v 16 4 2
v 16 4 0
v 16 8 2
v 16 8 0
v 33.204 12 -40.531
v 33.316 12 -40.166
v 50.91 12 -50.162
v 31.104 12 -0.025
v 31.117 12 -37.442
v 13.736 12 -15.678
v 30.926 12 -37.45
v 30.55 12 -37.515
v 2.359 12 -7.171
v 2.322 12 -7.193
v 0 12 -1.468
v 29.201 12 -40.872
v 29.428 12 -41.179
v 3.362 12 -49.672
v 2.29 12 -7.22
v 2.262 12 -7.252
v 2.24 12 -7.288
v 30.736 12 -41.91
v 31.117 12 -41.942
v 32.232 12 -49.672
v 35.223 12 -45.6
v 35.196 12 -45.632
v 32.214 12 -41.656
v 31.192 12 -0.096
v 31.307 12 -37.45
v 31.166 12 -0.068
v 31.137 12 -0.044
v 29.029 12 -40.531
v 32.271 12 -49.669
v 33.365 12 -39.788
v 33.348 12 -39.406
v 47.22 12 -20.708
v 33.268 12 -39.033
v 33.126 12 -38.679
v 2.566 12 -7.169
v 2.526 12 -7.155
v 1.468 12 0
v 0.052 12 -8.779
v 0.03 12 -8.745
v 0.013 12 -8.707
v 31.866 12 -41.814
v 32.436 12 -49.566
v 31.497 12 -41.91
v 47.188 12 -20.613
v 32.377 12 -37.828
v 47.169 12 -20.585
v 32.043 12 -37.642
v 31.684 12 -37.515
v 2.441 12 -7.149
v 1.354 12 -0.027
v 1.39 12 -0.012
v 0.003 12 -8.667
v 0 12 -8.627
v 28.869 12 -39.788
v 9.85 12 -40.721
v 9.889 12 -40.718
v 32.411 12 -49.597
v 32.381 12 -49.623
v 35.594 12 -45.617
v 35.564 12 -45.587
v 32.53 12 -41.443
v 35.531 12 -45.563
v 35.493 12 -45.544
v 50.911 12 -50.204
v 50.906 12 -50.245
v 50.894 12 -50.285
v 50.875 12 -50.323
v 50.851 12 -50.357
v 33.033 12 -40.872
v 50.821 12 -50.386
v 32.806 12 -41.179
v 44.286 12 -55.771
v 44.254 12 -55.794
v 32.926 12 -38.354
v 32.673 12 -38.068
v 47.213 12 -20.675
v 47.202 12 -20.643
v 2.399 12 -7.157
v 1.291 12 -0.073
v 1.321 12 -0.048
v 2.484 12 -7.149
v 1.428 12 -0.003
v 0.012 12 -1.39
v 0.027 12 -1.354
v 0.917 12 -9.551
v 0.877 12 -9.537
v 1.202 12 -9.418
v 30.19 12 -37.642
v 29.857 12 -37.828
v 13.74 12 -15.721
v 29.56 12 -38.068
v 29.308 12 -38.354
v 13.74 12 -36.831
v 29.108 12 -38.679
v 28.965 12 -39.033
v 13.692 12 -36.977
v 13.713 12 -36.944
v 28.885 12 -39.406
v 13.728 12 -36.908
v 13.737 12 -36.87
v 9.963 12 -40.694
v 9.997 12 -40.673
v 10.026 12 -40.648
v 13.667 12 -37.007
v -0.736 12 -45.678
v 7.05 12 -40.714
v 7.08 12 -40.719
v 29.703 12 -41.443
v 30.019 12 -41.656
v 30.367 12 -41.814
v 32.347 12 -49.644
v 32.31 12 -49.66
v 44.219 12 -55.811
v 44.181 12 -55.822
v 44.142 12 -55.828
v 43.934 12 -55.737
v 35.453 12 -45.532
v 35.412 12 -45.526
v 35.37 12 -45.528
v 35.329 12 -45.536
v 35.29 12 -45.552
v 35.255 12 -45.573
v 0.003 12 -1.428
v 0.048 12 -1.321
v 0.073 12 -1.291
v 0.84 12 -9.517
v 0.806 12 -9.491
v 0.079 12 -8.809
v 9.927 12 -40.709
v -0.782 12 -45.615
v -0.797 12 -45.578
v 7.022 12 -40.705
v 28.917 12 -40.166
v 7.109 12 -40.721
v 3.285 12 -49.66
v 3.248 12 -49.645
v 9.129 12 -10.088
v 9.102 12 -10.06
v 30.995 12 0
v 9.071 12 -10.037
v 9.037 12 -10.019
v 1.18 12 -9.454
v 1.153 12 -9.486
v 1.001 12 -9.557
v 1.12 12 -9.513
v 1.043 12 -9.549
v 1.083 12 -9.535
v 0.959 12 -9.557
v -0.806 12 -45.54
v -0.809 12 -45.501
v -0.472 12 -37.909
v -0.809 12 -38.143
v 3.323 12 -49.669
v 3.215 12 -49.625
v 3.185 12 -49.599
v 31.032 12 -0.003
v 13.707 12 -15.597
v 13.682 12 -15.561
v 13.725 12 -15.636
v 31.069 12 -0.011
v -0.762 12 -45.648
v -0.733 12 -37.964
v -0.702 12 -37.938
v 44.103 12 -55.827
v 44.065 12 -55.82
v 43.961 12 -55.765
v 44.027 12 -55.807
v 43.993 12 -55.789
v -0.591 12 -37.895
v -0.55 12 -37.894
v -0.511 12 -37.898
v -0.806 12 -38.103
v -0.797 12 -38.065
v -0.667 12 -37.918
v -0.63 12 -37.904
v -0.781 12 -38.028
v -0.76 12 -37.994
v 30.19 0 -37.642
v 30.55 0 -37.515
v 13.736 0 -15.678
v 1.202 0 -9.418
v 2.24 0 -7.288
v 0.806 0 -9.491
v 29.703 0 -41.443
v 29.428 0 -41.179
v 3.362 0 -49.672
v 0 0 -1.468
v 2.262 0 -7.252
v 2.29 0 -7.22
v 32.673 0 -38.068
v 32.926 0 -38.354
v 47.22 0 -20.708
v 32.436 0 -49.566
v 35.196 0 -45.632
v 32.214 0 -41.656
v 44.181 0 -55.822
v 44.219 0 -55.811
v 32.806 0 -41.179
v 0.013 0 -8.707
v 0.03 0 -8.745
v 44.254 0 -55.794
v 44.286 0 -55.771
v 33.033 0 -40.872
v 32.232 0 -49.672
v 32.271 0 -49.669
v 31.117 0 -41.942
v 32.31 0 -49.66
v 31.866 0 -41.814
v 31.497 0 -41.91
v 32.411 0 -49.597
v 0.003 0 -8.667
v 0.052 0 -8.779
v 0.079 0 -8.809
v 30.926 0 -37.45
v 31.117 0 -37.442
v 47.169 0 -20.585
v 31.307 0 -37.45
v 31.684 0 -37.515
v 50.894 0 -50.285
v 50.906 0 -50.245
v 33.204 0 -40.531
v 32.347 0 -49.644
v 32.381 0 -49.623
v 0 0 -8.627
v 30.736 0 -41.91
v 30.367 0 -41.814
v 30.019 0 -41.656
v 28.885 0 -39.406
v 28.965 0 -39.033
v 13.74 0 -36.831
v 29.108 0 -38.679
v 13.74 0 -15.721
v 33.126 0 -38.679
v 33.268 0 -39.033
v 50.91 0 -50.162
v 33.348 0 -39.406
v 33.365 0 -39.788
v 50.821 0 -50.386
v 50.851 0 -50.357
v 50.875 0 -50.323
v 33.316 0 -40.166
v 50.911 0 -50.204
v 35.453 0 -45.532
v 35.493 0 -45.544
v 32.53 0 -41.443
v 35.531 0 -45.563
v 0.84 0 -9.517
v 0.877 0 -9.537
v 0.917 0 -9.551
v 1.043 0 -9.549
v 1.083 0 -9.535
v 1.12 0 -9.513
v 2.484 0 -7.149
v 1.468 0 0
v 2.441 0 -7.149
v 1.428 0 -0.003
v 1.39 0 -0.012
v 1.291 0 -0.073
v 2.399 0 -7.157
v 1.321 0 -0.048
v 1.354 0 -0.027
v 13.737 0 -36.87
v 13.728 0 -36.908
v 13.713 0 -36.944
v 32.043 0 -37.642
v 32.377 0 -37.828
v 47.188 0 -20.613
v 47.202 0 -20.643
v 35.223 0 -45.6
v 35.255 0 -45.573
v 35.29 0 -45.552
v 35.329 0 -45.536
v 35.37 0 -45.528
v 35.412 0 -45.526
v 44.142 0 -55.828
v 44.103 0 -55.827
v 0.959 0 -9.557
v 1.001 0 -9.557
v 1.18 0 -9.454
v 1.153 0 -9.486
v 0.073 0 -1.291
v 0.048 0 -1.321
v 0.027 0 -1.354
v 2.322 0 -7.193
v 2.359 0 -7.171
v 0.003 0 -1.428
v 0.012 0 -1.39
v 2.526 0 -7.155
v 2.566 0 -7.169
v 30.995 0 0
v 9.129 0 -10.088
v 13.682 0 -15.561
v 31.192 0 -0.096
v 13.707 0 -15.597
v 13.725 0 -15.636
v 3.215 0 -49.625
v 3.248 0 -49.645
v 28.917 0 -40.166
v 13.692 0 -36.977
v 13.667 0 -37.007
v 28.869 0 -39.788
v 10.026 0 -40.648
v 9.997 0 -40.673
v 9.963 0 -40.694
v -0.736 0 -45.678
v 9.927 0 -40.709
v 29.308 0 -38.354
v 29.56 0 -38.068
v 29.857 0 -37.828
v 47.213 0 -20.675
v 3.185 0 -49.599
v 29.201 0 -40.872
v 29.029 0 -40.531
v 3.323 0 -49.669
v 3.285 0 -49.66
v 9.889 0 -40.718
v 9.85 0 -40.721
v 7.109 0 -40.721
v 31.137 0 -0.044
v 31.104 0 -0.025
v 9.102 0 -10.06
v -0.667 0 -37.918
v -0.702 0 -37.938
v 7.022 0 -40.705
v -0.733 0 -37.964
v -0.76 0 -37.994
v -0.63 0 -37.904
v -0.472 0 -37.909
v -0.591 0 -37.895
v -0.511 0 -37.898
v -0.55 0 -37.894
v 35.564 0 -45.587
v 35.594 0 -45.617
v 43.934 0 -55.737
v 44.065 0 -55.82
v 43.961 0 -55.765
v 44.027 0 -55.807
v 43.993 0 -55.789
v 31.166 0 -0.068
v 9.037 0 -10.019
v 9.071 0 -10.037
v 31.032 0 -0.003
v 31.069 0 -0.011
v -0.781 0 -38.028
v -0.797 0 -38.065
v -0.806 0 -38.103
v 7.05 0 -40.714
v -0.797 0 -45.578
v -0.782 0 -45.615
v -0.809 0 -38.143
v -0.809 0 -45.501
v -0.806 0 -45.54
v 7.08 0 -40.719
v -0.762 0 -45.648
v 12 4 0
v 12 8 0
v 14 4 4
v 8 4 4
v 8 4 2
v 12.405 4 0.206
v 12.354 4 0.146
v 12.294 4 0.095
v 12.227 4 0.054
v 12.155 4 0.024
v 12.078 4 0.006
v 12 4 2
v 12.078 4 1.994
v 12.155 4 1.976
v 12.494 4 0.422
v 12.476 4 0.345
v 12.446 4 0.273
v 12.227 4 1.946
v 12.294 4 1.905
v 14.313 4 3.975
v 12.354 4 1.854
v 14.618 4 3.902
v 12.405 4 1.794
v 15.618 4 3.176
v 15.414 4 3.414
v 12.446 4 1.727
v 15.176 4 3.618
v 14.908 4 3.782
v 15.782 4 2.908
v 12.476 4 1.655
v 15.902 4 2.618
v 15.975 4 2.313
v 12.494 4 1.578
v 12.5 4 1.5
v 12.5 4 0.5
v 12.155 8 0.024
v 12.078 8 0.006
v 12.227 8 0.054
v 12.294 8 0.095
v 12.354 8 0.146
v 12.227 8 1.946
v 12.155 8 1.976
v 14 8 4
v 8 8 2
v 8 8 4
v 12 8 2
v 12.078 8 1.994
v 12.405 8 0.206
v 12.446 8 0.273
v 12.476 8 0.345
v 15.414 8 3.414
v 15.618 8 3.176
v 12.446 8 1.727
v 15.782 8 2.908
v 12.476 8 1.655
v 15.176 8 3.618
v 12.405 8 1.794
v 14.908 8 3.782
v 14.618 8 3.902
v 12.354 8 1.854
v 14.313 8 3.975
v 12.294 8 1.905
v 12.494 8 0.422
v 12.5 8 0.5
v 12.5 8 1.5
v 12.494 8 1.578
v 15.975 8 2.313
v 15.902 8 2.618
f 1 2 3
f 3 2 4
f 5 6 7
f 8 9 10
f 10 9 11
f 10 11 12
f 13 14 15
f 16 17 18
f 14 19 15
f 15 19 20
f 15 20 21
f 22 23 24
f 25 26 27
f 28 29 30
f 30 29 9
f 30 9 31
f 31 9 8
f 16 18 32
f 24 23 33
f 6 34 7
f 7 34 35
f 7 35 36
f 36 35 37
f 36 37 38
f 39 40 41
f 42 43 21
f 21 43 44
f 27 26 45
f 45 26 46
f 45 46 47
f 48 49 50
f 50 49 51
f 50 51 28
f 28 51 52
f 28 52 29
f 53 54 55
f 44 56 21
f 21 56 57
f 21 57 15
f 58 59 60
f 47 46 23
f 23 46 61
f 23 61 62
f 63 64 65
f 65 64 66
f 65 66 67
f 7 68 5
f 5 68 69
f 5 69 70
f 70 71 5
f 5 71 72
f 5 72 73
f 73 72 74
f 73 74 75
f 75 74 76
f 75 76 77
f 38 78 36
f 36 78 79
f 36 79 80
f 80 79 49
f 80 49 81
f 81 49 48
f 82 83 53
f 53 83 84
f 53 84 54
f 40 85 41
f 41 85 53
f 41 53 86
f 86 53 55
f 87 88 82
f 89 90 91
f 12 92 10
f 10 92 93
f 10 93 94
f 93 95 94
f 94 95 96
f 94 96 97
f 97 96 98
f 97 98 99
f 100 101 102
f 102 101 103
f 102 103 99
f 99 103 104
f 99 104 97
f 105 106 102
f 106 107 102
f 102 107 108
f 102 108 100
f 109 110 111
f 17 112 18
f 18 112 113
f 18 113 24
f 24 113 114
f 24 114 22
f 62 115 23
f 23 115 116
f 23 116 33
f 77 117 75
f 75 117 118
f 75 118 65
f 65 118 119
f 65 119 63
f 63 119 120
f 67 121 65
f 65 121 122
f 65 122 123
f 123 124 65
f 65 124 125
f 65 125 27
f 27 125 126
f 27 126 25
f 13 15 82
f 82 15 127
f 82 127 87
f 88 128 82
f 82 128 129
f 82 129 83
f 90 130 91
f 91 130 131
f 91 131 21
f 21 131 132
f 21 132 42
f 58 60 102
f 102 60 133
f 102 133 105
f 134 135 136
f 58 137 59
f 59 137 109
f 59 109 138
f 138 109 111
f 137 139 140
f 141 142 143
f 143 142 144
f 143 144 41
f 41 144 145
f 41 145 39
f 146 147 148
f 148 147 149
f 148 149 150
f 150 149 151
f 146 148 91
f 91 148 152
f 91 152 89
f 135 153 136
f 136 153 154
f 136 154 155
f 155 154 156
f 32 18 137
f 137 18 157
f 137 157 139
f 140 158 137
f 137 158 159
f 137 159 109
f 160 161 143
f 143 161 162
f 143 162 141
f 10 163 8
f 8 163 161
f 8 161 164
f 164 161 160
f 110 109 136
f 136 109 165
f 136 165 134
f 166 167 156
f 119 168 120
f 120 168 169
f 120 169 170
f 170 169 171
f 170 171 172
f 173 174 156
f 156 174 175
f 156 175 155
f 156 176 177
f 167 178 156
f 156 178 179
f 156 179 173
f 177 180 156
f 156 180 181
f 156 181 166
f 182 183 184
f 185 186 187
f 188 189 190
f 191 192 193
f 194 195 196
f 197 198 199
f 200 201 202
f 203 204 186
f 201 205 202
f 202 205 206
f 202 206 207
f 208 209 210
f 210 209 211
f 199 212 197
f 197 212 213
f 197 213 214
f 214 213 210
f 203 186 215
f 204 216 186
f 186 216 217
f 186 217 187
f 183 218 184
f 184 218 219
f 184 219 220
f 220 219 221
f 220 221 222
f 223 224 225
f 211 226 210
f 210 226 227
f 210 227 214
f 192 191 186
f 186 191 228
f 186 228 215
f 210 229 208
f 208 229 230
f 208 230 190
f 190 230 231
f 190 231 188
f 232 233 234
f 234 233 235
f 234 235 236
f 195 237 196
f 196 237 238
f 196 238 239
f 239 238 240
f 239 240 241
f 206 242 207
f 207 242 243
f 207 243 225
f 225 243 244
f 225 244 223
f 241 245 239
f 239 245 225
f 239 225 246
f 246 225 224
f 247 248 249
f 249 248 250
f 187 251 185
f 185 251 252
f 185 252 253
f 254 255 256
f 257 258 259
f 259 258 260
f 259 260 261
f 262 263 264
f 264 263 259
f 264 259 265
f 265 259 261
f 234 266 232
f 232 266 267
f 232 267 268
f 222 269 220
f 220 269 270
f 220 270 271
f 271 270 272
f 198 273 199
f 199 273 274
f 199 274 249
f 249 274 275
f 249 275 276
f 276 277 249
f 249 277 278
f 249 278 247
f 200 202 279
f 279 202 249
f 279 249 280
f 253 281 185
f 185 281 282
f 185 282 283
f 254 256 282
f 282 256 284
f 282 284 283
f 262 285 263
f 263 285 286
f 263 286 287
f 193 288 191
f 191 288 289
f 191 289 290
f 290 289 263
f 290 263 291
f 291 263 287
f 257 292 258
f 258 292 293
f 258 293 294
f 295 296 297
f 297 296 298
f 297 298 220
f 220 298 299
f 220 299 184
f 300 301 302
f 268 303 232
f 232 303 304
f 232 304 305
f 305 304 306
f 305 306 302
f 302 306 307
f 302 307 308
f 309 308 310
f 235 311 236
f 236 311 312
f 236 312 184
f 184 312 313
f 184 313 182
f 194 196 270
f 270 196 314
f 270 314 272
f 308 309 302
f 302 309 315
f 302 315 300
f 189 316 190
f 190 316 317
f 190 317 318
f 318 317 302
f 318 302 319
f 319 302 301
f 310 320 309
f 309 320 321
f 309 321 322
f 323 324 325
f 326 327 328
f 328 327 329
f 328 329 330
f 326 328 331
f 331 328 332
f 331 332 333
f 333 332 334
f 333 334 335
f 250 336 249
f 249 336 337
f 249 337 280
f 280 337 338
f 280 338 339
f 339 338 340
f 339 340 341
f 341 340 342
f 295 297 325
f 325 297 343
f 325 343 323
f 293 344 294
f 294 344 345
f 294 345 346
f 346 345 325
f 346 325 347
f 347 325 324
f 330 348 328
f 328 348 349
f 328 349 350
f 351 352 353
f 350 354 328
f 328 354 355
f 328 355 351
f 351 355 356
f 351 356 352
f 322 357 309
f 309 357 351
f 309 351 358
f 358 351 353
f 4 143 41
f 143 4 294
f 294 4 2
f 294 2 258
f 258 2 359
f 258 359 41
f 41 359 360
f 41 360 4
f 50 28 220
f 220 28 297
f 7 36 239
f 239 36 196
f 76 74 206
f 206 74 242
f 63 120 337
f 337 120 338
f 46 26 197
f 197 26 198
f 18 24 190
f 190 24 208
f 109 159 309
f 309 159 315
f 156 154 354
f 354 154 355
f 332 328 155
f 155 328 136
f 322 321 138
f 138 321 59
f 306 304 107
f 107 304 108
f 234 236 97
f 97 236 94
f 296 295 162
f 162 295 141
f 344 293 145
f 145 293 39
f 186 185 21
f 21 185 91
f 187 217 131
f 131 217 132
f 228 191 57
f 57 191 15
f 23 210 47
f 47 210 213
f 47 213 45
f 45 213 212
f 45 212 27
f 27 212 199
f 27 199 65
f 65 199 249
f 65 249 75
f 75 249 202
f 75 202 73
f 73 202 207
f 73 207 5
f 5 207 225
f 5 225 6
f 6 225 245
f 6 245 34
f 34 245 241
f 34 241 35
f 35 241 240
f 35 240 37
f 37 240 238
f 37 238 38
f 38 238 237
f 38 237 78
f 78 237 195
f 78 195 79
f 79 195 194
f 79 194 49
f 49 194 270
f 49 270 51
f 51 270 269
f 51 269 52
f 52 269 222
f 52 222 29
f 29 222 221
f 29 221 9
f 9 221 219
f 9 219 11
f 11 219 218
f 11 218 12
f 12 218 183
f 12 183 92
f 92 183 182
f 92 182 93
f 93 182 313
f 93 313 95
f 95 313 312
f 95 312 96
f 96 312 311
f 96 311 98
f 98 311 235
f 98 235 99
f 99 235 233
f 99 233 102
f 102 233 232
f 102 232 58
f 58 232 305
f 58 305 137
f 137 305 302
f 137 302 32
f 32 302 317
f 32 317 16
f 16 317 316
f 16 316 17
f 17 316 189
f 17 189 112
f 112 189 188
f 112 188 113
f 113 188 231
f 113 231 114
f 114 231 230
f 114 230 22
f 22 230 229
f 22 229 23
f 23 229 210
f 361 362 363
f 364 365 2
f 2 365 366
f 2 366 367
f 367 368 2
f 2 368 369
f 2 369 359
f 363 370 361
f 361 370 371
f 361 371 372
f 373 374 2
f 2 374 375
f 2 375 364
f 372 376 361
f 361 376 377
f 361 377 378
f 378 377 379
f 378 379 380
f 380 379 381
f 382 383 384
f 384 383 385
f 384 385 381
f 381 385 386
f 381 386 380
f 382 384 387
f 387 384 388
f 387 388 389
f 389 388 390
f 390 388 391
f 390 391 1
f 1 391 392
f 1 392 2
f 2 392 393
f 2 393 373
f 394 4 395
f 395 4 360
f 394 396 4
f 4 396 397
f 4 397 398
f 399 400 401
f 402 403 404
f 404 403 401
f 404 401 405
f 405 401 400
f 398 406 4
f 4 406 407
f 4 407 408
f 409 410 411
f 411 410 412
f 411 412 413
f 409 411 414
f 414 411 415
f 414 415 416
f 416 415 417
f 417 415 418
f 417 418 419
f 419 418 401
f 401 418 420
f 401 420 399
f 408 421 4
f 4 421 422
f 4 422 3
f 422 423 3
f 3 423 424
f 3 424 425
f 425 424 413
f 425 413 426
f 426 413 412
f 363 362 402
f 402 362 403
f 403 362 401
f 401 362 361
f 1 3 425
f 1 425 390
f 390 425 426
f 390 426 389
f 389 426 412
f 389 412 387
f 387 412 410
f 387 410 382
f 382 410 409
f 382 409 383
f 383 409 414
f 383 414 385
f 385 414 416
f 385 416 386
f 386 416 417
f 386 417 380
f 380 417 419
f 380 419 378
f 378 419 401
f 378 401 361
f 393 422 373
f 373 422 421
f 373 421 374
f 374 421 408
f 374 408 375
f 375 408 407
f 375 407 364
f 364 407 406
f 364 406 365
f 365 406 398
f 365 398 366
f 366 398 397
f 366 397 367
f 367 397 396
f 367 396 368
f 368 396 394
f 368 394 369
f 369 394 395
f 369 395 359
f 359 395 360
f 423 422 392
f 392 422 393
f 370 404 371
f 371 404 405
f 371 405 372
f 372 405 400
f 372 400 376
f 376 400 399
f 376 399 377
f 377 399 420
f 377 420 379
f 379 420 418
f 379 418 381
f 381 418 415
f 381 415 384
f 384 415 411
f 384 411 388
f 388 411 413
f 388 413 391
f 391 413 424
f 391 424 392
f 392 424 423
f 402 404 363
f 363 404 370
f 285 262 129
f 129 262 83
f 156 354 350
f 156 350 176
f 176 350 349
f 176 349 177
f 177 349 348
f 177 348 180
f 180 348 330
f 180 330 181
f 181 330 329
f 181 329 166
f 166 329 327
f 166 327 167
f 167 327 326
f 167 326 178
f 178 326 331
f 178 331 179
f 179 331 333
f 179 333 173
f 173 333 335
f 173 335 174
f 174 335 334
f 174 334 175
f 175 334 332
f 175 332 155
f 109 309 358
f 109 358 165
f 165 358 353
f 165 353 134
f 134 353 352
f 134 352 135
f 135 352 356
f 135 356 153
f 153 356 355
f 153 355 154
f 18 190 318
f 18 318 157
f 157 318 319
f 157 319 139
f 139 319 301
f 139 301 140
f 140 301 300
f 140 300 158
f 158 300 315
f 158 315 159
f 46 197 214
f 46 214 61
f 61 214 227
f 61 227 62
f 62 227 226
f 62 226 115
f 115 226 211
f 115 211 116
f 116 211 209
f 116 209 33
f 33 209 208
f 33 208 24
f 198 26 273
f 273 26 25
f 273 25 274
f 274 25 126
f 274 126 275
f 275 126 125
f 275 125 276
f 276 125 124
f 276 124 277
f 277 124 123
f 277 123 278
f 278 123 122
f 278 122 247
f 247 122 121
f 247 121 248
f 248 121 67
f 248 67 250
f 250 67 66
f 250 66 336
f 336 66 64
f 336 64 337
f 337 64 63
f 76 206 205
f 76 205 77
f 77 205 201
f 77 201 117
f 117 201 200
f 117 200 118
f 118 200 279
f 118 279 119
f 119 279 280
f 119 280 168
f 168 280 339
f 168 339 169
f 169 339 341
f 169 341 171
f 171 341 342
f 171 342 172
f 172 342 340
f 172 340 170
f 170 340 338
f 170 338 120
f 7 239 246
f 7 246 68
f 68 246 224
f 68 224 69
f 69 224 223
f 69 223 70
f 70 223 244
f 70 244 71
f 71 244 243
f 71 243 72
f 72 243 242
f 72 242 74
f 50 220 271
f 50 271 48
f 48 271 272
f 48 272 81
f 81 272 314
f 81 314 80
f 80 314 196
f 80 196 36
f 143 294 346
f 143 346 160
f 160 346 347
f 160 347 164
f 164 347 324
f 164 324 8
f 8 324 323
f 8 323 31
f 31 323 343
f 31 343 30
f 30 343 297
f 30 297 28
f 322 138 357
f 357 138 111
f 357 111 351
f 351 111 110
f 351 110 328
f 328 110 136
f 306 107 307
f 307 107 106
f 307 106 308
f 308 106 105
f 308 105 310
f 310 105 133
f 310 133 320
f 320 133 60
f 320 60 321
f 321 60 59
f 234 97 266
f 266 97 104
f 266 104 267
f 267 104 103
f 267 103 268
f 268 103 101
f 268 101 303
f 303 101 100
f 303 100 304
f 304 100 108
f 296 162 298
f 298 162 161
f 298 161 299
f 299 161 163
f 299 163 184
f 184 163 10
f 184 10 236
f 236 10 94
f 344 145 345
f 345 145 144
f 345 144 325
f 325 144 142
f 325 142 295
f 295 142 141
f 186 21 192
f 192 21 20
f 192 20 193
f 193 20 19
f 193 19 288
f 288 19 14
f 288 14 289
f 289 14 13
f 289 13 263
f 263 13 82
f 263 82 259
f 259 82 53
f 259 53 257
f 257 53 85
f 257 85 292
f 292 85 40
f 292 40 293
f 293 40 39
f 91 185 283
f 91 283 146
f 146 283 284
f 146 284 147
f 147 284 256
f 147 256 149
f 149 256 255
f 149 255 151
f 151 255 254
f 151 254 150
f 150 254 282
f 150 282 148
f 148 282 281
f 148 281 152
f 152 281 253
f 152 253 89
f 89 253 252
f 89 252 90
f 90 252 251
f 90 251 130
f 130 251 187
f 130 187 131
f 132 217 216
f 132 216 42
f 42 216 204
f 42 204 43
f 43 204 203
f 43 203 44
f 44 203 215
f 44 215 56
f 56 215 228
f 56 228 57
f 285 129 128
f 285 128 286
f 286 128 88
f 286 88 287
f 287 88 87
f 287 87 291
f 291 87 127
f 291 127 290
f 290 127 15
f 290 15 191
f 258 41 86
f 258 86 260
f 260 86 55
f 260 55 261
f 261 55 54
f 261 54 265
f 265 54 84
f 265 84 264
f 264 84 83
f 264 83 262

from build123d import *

# Parameters (mm, degrees)
SKETCH1_R           = 2.25
BOSS_EXTRUDE1_DEPTH = 12
SKETCH2_W           = 8
SKETCH2_H           = 4
BOSS_EXTRUDE2_DEPTH = 4
CUT_EXTRUDE1_DEPTH  = 6
CUT_EXTRUDE2_DEPTH  = 13
FILLET1_R           = 0.25


with BuildPart() as part:
    # Sketch1 → Boss-Extrude1 (new body)
    with BuildSketch(Plane(origin=(0, 0, 0), x_dir=(1, 0, 0), z_dir=(0, 1, 0))):
        Polygon((0, 0), (0, 8.7351098), (1.053451476, 9.722150715), (2.345646332, 7.07227283), (9.090891126, 10.042655859), (13.740010344, 15.630633236), (13.740010344, 36.934074296), (9.953212595, 40.720872045), (7.064267003, 40.720872045), (-0.809396561, 37.783381234), (-0.809396561, 45.604675912), (3.258374293, 49.672446766), (32.361506358, 49.672446766), (35.384723628, 45.363574987), (44.093237241, 55.930159978), (50.92671808, 50.298306266), (47.211057141, 20.639259086), (31.116613422, 0), align=None)
        with Locations((31.116613422, 39.692144587)):
            Circle(SKETCH1_R, mode=Mode.SUBTRACT)
    extrude(amount=BOSS_EXTRUDE1_DEPTH)

    # Sketch2 → Boss-Extrude2 (add)
    with BuildSketch(Plane.XY):
        with Locations((12, 6)):
            Rectangle(SKETCH2_W, SKETCH2_H)
    extrude(amount=BOSS_EXTRUDE2_DEPTH)

    # Sketch3 → Cut-Extrude1 (cut)
    with BuildSketch(Plane(origin=(0, 8, 0), x_dir=(1, 0, 0), z_dir=(0, 1, 0))):
        with BuildLine():
            Line((8, 0), (12, 0))
            ThreePointArc((12, 0), (12.353553391, -0.146446609), (12.5, -0.5))
            Line((12.5, -0.5), (12.5, -1.5))
            ThreePointArc((12.5, -1.5), (12.353553391, -1.853553391), (12, -2))
            Line((12, -2), (8, -2))
            Line((8, -2), (8, 0))
        make_face()
        with BuildLine():
            Line((14, -4), (16, -4))
            Line((16, -4), (16, -2))
            ThreePointArc((16, -2), (15.414213562, -3.414213562), (14, -4))
        make_face()
    extrude(amount=-CUT_EXTRUDE1_DEPTH, mode=Mode.SUBTRACT)

    # Sketch4 → Cut-Extrude2 (cut, through all)
    with BuildSketch(Plane(origin=(0, 12, 0), x_dir=(1, 0, 0), z_dir=(0, 1, 0))):
        Polygon((0, 0), (0, 1.364035653), (1.364035653, 0), align=None)
    extrude(amount=-CUT_EXTRUDE2_DEPTH, mode=Mode.SUBTRACT)

    # Fillet1
    fillet1_edges = [part.edges().sort_by_distance(p)[0] for p in [
        (1.364035653, 6, 0),
        (0, 6, -1.364035653),
        (0, 6, -8.7351098),
        (1.053451476, 6, -9.722150715),
        (2.345646332, 6, -7.07227283),
        (9.090891126, 6, -10.042655859),
        (13.740010344, 6, -15.630633236),
        (13.740010344, 6, -36.934074296),
        (9.953212595, 6, -40.720872045),
        (7.064267003, 6, -40.720872045),
        (-0.809396561, 6, -37.783381234),
        (-0.809396561, 6, -45.604675912),
        (3.258374293, 6, -49.672446766),
        (32.361506358, 6, -49.672446766),
        (35.384723628, 6, -45.363574987),
        (44.093237241, 6, -55.930159978),
        (50.92671808, 6, -50.298306266),
        (47.211057141, 6, -20.639259086),
        (31.116613422, 6, 0),
    ]]
    fillet(fillet1_edges, radius=FILLET1_R)


solid = part.part
